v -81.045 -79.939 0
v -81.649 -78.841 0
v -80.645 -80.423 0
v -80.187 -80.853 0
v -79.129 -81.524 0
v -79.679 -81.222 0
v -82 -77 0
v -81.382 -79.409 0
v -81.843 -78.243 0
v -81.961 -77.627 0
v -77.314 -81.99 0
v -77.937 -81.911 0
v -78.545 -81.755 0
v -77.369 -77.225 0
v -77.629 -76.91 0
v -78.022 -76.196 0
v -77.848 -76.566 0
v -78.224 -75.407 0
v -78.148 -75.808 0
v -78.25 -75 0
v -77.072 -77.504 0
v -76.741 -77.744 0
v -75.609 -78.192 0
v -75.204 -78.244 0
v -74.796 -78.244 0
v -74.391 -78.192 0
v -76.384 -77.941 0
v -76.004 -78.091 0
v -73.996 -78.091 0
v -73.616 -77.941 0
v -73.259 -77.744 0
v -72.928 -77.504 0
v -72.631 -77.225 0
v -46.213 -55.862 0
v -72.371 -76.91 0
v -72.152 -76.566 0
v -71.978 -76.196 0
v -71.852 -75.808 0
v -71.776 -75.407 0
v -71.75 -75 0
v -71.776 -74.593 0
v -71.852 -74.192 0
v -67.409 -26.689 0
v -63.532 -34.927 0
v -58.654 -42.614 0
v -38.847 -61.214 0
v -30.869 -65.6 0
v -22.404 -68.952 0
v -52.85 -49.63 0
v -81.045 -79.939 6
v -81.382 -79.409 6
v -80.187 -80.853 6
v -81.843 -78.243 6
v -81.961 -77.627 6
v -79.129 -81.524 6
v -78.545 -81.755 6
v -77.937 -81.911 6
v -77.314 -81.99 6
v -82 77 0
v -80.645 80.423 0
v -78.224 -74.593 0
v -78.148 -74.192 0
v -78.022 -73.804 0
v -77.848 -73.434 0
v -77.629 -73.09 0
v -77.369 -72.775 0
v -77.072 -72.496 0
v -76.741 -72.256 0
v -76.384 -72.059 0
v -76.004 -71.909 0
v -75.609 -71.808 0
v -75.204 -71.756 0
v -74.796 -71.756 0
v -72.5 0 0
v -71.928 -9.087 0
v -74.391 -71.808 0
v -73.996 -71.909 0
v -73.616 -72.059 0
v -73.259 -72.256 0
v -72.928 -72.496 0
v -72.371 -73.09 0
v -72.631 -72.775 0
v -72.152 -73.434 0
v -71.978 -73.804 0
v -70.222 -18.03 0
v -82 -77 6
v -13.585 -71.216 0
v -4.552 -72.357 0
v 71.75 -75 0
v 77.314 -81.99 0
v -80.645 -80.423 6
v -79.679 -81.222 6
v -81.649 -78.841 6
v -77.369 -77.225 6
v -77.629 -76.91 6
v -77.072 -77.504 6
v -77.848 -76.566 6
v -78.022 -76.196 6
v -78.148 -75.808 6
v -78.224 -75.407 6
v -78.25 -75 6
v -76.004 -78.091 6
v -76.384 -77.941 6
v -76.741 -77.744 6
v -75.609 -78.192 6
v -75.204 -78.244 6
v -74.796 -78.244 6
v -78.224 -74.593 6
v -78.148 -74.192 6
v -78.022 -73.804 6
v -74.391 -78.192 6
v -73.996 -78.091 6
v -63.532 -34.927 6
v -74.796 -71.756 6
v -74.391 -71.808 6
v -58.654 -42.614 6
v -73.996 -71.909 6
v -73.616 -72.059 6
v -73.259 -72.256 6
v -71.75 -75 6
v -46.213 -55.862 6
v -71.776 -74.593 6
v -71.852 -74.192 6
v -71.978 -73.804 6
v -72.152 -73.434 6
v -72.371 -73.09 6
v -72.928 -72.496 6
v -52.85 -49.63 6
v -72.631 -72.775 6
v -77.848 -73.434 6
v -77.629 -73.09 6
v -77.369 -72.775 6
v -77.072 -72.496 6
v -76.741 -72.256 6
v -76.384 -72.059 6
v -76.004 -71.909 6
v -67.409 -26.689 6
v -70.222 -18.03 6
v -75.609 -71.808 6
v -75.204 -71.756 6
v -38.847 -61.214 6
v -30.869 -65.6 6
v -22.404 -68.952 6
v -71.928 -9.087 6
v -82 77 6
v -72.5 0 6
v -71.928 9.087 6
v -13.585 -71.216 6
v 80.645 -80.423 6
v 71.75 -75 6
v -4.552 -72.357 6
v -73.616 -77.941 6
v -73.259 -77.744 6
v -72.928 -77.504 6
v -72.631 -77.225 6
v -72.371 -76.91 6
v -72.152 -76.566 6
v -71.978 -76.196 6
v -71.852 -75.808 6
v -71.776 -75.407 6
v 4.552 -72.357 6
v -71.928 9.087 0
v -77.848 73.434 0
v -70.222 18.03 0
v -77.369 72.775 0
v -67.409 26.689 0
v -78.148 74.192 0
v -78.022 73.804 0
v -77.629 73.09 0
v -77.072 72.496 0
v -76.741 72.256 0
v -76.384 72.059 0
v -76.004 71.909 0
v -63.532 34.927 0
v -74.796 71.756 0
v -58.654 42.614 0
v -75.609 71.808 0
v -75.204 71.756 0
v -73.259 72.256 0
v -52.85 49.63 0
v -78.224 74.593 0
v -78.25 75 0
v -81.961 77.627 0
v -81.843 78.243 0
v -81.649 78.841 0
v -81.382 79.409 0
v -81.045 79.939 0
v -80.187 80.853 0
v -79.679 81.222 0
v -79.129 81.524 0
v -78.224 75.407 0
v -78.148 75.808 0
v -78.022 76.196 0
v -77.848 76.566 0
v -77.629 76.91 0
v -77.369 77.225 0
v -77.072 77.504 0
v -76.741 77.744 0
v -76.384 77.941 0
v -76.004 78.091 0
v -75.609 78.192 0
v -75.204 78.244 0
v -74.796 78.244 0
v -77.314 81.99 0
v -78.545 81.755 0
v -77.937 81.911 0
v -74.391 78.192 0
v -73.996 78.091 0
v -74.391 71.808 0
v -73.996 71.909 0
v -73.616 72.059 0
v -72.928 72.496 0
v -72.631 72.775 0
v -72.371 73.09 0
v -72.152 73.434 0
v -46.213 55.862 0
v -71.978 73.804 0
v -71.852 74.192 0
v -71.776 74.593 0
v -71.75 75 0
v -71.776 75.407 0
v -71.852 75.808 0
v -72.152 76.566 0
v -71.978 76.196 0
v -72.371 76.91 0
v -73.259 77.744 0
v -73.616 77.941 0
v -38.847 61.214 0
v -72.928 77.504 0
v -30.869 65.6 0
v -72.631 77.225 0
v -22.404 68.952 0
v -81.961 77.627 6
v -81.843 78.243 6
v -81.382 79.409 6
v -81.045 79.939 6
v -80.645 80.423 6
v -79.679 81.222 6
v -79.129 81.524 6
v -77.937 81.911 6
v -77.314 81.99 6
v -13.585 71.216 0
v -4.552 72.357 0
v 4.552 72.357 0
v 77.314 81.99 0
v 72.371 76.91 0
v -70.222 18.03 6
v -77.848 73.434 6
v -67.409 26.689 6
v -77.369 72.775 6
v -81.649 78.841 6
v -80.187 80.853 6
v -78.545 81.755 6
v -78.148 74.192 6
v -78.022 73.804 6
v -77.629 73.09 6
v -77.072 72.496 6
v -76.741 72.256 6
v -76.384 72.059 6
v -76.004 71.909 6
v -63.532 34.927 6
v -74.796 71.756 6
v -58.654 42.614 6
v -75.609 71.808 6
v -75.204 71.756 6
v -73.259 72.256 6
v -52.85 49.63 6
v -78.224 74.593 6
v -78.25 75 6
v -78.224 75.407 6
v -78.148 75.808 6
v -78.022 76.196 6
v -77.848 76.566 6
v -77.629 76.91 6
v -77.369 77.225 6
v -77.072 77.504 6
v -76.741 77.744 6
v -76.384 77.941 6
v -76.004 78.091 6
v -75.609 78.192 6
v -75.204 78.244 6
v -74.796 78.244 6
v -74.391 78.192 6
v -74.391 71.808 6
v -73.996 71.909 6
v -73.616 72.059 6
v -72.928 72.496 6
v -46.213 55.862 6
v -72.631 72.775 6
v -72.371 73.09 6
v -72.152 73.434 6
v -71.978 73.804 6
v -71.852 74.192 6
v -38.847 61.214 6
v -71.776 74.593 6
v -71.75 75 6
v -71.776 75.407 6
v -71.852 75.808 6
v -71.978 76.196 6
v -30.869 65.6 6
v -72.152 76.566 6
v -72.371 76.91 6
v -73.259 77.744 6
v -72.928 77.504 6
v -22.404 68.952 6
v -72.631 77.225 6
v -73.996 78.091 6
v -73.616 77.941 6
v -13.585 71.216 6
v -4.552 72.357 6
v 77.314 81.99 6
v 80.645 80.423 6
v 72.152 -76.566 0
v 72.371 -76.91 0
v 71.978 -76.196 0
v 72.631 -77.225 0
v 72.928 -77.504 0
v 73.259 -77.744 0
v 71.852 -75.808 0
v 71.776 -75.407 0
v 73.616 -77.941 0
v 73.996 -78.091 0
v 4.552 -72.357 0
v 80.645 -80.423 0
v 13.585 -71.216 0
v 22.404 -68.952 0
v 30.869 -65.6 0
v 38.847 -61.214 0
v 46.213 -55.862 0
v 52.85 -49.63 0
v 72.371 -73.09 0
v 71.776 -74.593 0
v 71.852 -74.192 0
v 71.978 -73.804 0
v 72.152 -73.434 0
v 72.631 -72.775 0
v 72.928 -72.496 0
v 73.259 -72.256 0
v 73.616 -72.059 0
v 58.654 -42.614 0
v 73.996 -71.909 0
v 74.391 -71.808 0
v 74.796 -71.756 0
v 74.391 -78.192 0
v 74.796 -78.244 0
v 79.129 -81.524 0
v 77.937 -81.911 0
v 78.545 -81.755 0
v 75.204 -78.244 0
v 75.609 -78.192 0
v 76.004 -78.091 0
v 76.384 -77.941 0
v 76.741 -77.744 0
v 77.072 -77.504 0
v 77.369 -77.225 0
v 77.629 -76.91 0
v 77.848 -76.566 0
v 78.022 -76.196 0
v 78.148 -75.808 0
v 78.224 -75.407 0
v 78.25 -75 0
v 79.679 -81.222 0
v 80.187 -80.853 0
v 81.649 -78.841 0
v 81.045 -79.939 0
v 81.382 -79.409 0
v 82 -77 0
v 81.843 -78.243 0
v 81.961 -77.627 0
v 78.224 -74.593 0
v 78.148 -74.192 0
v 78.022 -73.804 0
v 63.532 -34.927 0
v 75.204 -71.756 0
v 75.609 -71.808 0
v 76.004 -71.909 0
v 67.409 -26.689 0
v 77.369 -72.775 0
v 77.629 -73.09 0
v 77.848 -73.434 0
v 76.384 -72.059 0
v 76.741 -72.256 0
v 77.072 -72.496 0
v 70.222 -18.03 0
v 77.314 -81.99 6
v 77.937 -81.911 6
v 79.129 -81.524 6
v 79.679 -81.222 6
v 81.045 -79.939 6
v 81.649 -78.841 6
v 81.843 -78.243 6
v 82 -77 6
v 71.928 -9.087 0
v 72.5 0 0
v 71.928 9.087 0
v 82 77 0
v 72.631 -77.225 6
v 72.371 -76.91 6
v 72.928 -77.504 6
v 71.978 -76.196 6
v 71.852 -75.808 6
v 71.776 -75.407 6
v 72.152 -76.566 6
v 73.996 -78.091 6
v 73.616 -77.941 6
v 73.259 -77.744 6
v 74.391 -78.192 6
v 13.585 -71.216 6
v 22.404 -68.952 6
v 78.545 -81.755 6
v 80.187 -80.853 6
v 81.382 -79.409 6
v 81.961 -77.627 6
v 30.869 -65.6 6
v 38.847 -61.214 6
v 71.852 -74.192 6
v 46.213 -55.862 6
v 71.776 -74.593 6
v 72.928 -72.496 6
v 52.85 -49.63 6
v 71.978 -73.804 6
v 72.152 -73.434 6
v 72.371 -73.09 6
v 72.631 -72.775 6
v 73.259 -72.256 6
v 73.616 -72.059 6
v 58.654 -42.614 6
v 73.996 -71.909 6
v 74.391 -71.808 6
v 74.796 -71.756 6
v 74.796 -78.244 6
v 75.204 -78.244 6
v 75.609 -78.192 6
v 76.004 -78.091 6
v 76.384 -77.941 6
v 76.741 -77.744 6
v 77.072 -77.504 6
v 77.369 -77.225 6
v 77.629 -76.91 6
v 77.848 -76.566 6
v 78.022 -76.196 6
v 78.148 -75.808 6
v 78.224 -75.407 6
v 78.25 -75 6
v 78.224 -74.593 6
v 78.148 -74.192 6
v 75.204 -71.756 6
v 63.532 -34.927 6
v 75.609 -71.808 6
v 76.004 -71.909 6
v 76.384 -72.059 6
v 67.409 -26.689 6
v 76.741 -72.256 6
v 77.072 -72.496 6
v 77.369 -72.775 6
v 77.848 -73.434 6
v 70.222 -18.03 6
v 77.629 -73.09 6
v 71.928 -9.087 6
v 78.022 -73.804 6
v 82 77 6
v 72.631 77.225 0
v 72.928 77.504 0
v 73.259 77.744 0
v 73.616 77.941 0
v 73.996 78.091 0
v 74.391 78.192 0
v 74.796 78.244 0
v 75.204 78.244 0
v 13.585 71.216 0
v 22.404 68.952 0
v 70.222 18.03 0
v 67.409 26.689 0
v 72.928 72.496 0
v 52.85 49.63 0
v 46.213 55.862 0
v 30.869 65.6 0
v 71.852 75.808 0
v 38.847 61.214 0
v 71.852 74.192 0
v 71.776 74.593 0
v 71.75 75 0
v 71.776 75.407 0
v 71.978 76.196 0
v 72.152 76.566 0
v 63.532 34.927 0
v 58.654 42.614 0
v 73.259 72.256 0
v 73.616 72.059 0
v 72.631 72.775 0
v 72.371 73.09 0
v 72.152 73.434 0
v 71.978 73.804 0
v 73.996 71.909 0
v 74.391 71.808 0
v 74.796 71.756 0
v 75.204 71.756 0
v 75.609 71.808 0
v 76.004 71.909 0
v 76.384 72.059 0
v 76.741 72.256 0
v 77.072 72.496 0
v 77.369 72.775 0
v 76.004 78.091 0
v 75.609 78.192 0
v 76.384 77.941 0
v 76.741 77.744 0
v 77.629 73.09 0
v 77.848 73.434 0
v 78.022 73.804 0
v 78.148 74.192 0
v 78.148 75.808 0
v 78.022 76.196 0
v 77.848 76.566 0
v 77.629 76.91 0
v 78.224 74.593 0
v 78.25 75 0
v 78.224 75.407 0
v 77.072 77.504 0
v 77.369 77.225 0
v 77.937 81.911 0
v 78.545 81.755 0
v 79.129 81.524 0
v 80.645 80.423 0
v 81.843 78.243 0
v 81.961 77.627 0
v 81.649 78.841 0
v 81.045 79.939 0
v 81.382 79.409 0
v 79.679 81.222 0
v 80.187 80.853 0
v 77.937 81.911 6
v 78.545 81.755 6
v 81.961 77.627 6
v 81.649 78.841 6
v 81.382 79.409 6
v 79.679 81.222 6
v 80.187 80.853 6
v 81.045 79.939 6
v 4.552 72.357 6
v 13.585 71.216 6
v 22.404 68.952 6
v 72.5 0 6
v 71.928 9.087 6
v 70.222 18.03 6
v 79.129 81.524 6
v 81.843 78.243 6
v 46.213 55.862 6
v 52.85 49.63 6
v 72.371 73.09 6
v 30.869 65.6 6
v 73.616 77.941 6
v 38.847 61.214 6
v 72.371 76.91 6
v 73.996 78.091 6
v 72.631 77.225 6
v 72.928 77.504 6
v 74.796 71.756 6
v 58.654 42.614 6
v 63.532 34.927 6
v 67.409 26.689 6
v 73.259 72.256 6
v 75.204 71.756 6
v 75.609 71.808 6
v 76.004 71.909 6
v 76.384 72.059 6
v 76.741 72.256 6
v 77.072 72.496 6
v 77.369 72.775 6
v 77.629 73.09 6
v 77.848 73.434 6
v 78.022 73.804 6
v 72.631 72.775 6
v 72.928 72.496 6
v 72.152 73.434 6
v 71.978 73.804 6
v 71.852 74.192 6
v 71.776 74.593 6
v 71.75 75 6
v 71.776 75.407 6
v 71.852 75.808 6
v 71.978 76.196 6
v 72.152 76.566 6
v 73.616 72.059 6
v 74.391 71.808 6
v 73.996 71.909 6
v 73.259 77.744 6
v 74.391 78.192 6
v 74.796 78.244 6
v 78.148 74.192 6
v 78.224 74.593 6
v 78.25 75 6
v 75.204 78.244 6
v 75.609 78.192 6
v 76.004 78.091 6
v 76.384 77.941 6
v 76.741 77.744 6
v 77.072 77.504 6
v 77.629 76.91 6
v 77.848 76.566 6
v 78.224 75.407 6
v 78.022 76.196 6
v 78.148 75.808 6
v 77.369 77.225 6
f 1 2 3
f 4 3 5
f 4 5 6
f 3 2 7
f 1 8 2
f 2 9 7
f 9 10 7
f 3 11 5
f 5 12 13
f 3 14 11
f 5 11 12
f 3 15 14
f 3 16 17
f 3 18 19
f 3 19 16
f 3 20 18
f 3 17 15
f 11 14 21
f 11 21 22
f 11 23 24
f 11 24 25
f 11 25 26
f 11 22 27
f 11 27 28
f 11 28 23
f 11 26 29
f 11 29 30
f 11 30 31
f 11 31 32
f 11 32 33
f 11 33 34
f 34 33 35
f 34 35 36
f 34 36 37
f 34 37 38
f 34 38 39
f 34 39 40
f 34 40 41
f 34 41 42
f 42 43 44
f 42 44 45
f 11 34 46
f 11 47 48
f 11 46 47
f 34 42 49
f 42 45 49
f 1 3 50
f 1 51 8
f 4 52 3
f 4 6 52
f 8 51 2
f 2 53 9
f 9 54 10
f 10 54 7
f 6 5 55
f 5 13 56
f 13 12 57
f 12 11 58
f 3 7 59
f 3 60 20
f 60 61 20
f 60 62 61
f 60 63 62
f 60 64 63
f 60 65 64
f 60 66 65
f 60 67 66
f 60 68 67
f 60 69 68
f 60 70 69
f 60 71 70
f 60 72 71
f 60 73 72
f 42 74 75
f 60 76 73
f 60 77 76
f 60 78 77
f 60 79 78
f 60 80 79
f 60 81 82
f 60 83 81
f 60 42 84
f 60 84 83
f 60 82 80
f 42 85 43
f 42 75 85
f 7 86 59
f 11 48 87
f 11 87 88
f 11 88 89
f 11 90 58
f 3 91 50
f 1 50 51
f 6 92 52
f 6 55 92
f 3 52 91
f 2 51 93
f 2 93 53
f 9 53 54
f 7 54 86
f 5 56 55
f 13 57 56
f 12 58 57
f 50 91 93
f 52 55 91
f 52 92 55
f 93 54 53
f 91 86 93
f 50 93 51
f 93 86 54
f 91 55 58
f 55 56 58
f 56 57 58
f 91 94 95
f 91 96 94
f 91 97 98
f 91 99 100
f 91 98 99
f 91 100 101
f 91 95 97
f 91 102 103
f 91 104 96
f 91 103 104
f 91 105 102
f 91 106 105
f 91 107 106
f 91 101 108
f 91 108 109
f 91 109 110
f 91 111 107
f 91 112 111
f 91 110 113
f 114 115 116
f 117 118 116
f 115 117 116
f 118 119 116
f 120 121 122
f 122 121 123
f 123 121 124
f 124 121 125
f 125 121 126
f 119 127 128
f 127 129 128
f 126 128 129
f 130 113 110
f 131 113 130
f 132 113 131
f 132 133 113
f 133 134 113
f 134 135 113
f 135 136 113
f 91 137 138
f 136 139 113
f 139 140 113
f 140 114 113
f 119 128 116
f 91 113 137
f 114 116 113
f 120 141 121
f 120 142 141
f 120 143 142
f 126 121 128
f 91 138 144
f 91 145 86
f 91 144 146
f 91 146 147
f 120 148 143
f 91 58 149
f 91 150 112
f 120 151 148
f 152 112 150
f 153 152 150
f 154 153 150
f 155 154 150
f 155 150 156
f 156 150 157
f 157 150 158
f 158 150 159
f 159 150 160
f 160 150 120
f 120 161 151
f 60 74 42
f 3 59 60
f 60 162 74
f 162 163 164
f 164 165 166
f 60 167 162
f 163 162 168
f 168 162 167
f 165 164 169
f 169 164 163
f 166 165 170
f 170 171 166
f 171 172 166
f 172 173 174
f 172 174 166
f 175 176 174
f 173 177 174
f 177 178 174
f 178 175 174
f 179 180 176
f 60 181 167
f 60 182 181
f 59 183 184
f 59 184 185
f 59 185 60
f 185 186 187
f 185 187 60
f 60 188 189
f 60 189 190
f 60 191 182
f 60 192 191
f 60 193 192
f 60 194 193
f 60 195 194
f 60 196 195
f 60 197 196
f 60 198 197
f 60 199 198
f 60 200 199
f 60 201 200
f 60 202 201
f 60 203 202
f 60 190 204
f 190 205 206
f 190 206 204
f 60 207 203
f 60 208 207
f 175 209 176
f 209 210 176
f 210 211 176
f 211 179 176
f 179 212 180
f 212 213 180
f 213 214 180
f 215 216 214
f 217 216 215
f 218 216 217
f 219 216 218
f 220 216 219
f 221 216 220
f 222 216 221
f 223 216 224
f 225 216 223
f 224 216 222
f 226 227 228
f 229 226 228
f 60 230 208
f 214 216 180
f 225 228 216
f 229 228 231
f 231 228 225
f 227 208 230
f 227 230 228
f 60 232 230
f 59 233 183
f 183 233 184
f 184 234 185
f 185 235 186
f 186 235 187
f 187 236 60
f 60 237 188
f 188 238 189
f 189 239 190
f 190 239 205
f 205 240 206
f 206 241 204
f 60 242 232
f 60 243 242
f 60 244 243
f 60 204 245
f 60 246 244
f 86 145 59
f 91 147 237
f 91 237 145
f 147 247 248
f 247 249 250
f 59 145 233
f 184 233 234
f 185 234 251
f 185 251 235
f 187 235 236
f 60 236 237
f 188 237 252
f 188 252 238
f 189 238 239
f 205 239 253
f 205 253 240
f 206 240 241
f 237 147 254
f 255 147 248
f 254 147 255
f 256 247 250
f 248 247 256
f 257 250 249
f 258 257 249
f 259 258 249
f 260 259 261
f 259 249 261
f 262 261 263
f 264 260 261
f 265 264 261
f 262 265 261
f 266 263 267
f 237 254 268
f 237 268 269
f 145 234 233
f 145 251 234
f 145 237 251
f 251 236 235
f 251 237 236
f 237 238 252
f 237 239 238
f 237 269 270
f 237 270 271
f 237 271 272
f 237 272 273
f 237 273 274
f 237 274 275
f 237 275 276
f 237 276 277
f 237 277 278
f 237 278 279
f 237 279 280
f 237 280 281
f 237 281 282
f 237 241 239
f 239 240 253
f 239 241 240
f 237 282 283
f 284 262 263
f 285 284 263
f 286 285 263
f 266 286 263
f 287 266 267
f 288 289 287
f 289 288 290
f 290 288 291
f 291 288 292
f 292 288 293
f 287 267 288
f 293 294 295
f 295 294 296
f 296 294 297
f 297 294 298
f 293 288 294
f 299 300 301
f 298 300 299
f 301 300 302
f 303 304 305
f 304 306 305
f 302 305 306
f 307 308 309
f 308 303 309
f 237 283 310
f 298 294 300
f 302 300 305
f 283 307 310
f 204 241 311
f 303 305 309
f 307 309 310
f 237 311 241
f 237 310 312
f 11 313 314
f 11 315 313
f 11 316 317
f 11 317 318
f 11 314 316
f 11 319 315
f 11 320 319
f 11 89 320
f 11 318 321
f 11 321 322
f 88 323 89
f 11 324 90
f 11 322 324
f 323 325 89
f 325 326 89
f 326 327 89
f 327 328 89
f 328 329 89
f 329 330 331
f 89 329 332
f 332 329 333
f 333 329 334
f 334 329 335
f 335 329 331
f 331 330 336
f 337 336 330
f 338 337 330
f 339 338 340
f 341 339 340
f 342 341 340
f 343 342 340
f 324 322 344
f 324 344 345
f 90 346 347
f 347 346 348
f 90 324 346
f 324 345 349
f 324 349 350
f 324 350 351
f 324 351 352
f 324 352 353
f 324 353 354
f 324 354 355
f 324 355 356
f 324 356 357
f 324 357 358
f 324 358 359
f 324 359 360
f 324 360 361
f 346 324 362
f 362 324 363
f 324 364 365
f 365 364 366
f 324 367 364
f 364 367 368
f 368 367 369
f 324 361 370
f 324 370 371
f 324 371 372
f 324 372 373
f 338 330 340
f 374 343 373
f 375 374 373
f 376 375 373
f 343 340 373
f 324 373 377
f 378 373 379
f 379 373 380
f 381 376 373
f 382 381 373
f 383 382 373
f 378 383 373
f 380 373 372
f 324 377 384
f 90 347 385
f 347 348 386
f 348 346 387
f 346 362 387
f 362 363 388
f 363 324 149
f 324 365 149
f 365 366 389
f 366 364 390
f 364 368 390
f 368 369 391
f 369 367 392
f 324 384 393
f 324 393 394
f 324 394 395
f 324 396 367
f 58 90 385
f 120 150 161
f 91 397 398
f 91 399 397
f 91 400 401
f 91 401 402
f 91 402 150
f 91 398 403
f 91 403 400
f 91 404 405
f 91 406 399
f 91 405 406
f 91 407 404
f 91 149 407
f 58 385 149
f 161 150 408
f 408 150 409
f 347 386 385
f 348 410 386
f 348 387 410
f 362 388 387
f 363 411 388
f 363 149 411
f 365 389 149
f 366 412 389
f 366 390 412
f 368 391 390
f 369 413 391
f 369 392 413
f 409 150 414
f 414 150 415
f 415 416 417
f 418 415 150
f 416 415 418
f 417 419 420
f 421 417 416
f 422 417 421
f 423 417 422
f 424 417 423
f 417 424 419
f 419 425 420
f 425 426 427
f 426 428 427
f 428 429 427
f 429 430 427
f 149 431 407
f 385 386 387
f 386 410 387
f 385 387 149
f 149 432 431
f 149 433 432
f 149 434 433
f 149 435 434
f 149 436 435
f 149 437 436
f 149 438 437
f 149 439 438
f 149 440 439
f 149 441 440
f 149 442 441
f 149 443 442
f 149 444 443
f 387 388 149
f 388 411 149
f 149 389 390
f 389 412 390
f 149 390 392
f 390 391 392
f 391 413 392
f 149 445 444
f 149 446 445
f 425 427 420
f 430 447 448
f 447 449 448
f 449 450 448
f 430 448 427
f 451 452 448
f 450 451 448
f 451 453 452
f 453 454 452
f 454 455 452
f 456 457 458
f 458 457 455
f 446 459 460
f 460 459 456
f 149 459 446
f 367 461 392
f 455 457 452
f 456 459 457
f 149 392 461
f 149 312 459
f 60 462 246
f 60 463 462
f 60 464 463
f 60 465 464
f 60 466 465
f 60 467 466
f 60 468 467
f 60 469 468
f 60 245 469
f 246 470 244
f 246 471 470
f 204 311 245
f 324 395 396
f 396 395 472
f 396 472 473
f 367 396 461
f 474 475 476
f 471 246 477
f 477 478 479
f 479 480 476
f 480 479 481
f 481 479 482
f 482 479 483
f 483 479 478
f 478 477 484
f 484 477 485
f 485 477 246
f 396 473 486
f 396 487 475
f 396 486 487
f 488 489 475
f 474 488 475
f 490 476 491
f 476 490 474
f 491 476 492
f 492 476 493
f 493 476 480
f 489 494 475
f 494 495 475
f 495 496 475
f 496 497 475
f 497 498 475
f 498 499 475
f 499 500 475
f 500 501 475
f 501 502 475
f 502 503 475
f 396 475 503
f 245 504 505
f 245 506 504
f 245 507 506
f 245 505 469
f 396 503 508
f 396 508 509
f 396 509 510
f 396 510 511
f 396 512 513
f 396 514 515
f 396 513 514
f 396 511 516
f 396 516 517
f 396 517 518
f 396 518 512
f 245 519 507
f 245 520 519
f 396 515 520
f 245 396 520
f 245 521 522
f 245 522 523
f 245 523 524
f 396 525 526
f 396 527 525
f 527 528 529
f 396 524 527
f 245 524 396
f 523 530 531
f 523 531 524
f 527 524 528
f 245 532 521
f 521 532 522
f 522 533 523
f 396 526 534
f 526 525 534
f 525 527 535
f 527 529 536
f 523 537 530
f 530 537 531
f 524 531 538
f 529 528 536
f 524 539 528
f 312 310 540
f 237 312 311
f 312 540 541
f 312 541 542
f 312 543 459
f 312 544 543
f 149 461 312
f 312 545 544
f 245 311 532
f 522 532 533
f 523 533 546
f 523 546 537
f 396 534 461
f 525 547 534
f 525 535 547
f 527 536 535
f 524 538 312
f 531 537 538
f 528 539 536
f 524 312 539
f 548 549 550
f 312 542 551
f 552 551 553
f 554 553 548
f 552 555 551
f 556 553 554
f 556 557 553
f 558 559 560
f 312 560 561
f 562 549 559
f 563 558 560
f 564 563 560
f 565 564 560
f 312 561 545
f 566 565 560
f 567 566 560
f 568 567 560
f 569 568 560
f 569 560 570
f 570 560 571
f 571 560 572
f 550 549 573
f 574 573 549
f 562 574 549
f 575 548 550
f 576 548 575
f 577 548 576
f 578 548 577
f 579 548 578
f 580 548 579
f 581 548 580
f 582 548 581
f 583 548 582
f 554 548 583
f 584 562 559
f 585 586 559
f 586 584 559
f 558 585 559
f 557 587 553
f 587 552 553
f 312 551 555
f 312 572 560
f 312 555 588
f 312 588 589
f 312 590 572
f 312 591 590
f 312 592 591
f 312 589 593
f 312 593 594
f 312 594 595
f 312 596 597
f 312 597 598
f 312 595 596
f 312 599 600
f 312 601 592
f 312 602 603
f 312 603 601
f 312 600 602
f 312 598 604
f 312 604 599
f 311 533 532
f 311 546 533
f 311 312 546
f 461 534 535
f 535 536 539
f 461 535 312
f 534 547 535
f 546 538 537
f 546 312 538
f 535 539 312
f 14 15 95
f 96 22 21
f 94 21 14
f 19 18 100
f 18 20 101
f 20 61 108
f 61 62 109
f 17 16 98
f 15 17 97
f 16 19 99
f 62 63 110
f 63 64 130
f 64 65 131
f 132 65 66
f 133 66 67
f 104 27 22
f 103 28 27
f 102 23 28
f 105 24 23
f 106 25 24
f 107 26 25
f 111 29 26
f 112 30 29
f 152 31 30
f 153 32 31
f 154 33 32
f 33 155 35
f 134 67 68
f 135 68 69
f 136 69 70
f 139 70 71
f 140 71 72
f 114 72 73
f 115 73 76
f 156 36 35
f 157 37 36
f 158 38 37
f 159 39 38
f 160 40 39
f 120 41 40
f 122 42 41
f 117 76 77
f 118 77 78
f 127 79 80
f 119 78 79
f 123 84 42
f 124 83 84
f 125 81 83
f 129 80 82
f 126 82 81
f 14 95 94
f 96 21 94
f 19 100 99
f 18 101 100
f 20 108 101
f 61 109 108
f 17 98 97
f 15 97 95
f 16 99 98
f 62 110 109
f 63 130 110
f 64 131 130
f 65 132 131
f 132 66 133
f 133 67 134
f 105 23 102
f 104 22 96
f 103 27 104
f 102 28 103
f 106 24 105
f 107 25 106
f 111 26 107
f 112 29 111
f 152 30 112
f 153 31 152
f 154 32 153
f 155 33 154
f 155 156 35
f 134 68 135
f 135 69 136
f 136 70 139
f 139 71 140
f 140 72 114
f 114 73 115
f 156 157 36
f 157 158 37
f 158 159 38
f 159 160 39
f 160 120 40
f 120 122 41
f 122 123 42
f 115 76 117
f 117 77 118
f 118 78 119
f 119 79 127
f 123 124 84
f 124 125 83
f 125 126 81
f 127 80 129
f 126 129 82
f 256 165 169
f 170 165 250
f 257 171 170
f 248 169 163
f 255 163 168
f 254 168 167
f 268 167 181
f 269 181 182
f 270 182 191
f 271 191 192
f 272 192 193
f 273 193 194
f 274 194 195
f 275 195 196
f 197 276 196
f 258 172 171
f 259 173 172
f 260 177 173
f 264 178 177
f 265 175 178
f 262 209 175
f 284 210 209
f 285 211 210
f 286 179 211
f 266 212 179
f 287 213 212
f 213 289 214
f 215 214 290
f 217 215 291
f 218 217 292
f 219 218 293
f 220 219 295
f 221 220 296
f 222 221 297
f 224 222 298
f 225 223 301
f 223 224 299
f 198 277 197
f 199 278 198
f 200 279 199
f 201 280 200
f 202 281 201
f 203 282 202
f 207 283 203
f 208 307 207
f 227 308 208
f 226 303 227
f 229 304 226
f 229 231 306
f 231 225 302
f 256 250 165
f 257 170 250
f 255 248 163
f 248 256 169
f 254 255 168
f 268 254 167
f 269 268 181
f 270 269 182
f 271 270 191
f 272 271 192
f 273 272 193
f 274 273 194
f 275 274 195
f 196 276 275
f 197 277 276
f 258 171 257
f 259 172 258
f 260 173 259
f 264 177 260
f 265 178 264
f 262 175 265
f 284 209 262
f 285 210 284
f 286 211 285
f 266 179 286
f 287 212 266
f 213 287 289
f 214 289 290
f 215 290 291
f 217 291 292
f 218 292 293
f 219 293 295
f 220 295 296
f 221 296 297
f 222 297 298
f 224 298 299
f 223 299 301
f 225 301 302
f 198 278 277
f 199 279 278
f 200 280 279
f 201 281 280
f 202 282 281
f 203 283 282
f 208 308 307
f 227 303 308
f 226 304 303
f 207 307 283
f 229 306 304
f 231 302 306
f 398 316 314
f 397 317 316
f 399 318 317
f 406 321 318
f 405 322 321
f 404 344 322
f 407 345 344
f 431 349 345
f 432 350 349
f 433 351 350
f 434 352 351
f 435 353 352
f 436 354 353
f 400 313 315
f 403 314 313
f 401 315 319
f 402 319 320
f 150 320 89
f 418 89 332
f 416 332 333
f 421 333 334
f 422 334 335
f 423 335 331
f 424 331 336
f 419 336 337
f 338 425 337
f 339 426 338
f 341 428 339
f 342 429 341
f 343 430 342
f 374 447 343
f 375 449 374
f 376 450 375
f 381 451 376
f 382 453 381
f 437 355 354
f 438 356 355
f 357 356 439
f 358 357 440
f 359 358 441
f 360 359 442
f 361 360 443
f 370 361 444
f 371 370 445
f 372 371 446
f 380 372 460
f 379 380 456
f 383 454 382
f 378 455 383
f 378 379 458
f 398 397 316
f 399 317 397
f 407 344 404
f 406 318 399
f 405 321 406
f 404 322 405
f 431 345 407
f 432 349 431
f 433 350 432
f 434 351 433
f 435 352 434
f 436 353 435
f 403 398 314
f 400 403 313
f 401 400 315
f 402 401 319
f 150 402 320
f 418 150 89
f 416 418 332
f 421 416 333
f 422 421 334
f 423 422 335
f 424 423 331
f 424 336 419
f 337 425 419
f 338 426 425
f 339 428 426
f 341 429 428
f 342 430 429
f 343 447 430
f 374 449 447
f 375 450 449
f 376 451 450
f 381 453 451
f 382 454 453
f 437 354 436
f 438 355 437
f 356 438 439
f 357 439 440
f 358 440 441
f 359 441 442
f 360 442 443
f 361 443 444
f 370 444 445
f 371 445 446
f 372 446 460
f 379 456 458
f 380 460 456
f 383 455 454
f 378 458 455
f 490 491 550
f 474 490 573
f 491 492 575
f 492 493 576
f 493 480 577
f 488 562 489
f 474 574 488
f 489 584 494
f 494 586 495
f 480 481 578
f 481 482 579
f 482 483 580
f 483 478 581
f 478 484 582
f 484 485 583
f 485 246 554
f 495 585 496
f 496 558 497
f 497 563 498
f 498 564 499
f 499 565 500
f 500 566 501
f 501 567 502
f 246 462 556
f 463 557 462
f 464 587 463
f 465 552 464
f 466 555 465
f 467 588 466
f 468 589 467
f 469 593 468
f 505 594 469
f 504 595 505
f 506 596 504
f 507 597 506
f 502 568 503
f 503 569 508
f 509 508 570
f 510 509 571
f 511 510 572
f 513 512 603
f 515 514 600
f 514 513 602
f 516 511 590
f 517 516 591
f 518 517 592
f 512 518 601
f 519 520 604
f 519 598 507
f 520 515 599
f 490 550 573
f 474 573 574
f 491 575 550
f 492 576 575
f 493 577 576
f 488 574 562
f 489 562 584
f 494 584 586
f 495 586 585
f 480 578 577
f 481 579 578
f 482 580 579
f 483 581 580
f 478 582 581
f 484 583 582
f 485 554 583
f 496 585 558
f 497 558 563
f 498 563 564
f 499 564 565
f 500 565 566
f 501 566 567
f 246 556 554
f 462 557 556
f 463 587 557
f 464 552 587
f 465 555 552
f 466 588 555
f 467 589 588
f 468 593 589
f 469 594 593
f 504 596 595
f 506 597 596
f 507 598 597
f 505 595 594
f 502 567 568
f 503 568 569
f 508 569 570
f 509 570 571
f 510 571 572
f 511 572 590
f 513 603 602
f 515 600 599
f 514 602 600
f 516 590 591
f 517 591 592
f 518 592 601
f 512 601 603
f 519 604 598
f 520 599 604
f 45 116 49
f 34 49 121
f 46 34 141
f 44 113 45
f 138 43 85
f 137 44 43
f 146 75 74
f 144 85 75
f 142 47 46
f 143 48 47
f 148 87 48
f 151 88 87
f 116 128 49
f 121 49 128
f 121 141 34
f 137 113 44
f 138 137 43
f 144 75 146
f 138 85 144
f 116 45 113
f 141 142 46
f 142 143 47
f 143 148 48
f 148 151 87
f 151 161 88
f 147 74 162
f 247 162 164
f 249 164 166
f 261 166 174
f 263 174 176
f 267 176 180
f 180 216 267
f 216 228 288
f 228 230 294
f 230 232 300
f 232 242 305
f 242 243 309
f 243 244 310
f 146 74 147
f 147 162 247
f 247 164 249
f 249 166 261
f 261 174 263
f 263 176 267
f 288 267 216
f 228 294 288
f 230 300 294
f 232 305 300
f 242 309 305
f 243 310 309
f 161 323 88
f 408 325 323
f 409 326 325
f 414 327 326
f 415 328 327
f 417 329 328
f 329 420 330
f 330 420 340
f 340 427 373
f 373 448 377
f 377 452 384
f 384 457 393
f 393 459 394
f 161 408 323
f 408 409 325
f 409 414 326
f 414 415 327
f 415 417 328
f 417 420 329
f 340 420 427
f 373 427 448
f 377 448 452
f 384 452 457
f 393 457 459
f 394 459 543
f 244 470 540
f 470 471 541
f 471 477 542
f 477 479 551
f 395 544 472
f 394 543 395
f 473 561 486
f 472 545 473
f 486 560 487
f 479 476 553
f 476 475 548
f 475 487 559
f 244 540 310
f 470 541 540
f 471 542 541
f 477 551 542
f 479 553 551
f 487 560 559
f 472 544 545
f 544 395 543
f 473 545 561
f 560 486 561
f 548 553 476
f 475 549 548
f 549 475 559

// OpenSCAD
$fn = 50;

difference() {
	union() {
		hull() {
			translate(v = [-77.0, 77.0, 0]) {
				cylinder(h = 6, r = 5);
			}
			translate(v = [77.0, 77.0, 0]) {
				cylinder(h = 6, r = 5);
			}
			translate(v = [-77.0, -77.0, 0]) {
				cylinder(h = 6, r = 5);
			}
			translate(v = [77.0, -77.0, 0]) {
				cylinder(h = 6, r = 5);
			}
		}
	}
	union() {
		translate(v = [-75.0, -75.0, -100.0]) {
			cylinder(h = 200, r = 3.25);
		}
		translate(v = [-75.0, 75.0, -100.0]) {
			cylinder(h = 200, r = 3.25);
		}
		translate(v = [75.0, -75.0, -100.0]) {
			cylinder(h = 200, r = 3.25);
		}
		translate(v = [75.0, 75.0, -100.0]) {
			cylinder(h = 200, r = 3.25);
		}
		translate(v = [-75.0, -75.0, -100.0]) {
			cylinder(h = 200, r = 1.8);
		}
		translate(v = [-75.0, 75.0, -100.0]) {
			cylinder(h = 200, r = 1.8);
		}
		translate(v = [75.0, -75.0, -100.0]) {
			cylinder(h = 200, r = 1.8);
		}
		translate(v = [75.0, 75.0, -100.0]) {
			cylinder(h = 200, r = 1.8);
		}
		cylinder(h = 6, r = 72.5);
	}
}
